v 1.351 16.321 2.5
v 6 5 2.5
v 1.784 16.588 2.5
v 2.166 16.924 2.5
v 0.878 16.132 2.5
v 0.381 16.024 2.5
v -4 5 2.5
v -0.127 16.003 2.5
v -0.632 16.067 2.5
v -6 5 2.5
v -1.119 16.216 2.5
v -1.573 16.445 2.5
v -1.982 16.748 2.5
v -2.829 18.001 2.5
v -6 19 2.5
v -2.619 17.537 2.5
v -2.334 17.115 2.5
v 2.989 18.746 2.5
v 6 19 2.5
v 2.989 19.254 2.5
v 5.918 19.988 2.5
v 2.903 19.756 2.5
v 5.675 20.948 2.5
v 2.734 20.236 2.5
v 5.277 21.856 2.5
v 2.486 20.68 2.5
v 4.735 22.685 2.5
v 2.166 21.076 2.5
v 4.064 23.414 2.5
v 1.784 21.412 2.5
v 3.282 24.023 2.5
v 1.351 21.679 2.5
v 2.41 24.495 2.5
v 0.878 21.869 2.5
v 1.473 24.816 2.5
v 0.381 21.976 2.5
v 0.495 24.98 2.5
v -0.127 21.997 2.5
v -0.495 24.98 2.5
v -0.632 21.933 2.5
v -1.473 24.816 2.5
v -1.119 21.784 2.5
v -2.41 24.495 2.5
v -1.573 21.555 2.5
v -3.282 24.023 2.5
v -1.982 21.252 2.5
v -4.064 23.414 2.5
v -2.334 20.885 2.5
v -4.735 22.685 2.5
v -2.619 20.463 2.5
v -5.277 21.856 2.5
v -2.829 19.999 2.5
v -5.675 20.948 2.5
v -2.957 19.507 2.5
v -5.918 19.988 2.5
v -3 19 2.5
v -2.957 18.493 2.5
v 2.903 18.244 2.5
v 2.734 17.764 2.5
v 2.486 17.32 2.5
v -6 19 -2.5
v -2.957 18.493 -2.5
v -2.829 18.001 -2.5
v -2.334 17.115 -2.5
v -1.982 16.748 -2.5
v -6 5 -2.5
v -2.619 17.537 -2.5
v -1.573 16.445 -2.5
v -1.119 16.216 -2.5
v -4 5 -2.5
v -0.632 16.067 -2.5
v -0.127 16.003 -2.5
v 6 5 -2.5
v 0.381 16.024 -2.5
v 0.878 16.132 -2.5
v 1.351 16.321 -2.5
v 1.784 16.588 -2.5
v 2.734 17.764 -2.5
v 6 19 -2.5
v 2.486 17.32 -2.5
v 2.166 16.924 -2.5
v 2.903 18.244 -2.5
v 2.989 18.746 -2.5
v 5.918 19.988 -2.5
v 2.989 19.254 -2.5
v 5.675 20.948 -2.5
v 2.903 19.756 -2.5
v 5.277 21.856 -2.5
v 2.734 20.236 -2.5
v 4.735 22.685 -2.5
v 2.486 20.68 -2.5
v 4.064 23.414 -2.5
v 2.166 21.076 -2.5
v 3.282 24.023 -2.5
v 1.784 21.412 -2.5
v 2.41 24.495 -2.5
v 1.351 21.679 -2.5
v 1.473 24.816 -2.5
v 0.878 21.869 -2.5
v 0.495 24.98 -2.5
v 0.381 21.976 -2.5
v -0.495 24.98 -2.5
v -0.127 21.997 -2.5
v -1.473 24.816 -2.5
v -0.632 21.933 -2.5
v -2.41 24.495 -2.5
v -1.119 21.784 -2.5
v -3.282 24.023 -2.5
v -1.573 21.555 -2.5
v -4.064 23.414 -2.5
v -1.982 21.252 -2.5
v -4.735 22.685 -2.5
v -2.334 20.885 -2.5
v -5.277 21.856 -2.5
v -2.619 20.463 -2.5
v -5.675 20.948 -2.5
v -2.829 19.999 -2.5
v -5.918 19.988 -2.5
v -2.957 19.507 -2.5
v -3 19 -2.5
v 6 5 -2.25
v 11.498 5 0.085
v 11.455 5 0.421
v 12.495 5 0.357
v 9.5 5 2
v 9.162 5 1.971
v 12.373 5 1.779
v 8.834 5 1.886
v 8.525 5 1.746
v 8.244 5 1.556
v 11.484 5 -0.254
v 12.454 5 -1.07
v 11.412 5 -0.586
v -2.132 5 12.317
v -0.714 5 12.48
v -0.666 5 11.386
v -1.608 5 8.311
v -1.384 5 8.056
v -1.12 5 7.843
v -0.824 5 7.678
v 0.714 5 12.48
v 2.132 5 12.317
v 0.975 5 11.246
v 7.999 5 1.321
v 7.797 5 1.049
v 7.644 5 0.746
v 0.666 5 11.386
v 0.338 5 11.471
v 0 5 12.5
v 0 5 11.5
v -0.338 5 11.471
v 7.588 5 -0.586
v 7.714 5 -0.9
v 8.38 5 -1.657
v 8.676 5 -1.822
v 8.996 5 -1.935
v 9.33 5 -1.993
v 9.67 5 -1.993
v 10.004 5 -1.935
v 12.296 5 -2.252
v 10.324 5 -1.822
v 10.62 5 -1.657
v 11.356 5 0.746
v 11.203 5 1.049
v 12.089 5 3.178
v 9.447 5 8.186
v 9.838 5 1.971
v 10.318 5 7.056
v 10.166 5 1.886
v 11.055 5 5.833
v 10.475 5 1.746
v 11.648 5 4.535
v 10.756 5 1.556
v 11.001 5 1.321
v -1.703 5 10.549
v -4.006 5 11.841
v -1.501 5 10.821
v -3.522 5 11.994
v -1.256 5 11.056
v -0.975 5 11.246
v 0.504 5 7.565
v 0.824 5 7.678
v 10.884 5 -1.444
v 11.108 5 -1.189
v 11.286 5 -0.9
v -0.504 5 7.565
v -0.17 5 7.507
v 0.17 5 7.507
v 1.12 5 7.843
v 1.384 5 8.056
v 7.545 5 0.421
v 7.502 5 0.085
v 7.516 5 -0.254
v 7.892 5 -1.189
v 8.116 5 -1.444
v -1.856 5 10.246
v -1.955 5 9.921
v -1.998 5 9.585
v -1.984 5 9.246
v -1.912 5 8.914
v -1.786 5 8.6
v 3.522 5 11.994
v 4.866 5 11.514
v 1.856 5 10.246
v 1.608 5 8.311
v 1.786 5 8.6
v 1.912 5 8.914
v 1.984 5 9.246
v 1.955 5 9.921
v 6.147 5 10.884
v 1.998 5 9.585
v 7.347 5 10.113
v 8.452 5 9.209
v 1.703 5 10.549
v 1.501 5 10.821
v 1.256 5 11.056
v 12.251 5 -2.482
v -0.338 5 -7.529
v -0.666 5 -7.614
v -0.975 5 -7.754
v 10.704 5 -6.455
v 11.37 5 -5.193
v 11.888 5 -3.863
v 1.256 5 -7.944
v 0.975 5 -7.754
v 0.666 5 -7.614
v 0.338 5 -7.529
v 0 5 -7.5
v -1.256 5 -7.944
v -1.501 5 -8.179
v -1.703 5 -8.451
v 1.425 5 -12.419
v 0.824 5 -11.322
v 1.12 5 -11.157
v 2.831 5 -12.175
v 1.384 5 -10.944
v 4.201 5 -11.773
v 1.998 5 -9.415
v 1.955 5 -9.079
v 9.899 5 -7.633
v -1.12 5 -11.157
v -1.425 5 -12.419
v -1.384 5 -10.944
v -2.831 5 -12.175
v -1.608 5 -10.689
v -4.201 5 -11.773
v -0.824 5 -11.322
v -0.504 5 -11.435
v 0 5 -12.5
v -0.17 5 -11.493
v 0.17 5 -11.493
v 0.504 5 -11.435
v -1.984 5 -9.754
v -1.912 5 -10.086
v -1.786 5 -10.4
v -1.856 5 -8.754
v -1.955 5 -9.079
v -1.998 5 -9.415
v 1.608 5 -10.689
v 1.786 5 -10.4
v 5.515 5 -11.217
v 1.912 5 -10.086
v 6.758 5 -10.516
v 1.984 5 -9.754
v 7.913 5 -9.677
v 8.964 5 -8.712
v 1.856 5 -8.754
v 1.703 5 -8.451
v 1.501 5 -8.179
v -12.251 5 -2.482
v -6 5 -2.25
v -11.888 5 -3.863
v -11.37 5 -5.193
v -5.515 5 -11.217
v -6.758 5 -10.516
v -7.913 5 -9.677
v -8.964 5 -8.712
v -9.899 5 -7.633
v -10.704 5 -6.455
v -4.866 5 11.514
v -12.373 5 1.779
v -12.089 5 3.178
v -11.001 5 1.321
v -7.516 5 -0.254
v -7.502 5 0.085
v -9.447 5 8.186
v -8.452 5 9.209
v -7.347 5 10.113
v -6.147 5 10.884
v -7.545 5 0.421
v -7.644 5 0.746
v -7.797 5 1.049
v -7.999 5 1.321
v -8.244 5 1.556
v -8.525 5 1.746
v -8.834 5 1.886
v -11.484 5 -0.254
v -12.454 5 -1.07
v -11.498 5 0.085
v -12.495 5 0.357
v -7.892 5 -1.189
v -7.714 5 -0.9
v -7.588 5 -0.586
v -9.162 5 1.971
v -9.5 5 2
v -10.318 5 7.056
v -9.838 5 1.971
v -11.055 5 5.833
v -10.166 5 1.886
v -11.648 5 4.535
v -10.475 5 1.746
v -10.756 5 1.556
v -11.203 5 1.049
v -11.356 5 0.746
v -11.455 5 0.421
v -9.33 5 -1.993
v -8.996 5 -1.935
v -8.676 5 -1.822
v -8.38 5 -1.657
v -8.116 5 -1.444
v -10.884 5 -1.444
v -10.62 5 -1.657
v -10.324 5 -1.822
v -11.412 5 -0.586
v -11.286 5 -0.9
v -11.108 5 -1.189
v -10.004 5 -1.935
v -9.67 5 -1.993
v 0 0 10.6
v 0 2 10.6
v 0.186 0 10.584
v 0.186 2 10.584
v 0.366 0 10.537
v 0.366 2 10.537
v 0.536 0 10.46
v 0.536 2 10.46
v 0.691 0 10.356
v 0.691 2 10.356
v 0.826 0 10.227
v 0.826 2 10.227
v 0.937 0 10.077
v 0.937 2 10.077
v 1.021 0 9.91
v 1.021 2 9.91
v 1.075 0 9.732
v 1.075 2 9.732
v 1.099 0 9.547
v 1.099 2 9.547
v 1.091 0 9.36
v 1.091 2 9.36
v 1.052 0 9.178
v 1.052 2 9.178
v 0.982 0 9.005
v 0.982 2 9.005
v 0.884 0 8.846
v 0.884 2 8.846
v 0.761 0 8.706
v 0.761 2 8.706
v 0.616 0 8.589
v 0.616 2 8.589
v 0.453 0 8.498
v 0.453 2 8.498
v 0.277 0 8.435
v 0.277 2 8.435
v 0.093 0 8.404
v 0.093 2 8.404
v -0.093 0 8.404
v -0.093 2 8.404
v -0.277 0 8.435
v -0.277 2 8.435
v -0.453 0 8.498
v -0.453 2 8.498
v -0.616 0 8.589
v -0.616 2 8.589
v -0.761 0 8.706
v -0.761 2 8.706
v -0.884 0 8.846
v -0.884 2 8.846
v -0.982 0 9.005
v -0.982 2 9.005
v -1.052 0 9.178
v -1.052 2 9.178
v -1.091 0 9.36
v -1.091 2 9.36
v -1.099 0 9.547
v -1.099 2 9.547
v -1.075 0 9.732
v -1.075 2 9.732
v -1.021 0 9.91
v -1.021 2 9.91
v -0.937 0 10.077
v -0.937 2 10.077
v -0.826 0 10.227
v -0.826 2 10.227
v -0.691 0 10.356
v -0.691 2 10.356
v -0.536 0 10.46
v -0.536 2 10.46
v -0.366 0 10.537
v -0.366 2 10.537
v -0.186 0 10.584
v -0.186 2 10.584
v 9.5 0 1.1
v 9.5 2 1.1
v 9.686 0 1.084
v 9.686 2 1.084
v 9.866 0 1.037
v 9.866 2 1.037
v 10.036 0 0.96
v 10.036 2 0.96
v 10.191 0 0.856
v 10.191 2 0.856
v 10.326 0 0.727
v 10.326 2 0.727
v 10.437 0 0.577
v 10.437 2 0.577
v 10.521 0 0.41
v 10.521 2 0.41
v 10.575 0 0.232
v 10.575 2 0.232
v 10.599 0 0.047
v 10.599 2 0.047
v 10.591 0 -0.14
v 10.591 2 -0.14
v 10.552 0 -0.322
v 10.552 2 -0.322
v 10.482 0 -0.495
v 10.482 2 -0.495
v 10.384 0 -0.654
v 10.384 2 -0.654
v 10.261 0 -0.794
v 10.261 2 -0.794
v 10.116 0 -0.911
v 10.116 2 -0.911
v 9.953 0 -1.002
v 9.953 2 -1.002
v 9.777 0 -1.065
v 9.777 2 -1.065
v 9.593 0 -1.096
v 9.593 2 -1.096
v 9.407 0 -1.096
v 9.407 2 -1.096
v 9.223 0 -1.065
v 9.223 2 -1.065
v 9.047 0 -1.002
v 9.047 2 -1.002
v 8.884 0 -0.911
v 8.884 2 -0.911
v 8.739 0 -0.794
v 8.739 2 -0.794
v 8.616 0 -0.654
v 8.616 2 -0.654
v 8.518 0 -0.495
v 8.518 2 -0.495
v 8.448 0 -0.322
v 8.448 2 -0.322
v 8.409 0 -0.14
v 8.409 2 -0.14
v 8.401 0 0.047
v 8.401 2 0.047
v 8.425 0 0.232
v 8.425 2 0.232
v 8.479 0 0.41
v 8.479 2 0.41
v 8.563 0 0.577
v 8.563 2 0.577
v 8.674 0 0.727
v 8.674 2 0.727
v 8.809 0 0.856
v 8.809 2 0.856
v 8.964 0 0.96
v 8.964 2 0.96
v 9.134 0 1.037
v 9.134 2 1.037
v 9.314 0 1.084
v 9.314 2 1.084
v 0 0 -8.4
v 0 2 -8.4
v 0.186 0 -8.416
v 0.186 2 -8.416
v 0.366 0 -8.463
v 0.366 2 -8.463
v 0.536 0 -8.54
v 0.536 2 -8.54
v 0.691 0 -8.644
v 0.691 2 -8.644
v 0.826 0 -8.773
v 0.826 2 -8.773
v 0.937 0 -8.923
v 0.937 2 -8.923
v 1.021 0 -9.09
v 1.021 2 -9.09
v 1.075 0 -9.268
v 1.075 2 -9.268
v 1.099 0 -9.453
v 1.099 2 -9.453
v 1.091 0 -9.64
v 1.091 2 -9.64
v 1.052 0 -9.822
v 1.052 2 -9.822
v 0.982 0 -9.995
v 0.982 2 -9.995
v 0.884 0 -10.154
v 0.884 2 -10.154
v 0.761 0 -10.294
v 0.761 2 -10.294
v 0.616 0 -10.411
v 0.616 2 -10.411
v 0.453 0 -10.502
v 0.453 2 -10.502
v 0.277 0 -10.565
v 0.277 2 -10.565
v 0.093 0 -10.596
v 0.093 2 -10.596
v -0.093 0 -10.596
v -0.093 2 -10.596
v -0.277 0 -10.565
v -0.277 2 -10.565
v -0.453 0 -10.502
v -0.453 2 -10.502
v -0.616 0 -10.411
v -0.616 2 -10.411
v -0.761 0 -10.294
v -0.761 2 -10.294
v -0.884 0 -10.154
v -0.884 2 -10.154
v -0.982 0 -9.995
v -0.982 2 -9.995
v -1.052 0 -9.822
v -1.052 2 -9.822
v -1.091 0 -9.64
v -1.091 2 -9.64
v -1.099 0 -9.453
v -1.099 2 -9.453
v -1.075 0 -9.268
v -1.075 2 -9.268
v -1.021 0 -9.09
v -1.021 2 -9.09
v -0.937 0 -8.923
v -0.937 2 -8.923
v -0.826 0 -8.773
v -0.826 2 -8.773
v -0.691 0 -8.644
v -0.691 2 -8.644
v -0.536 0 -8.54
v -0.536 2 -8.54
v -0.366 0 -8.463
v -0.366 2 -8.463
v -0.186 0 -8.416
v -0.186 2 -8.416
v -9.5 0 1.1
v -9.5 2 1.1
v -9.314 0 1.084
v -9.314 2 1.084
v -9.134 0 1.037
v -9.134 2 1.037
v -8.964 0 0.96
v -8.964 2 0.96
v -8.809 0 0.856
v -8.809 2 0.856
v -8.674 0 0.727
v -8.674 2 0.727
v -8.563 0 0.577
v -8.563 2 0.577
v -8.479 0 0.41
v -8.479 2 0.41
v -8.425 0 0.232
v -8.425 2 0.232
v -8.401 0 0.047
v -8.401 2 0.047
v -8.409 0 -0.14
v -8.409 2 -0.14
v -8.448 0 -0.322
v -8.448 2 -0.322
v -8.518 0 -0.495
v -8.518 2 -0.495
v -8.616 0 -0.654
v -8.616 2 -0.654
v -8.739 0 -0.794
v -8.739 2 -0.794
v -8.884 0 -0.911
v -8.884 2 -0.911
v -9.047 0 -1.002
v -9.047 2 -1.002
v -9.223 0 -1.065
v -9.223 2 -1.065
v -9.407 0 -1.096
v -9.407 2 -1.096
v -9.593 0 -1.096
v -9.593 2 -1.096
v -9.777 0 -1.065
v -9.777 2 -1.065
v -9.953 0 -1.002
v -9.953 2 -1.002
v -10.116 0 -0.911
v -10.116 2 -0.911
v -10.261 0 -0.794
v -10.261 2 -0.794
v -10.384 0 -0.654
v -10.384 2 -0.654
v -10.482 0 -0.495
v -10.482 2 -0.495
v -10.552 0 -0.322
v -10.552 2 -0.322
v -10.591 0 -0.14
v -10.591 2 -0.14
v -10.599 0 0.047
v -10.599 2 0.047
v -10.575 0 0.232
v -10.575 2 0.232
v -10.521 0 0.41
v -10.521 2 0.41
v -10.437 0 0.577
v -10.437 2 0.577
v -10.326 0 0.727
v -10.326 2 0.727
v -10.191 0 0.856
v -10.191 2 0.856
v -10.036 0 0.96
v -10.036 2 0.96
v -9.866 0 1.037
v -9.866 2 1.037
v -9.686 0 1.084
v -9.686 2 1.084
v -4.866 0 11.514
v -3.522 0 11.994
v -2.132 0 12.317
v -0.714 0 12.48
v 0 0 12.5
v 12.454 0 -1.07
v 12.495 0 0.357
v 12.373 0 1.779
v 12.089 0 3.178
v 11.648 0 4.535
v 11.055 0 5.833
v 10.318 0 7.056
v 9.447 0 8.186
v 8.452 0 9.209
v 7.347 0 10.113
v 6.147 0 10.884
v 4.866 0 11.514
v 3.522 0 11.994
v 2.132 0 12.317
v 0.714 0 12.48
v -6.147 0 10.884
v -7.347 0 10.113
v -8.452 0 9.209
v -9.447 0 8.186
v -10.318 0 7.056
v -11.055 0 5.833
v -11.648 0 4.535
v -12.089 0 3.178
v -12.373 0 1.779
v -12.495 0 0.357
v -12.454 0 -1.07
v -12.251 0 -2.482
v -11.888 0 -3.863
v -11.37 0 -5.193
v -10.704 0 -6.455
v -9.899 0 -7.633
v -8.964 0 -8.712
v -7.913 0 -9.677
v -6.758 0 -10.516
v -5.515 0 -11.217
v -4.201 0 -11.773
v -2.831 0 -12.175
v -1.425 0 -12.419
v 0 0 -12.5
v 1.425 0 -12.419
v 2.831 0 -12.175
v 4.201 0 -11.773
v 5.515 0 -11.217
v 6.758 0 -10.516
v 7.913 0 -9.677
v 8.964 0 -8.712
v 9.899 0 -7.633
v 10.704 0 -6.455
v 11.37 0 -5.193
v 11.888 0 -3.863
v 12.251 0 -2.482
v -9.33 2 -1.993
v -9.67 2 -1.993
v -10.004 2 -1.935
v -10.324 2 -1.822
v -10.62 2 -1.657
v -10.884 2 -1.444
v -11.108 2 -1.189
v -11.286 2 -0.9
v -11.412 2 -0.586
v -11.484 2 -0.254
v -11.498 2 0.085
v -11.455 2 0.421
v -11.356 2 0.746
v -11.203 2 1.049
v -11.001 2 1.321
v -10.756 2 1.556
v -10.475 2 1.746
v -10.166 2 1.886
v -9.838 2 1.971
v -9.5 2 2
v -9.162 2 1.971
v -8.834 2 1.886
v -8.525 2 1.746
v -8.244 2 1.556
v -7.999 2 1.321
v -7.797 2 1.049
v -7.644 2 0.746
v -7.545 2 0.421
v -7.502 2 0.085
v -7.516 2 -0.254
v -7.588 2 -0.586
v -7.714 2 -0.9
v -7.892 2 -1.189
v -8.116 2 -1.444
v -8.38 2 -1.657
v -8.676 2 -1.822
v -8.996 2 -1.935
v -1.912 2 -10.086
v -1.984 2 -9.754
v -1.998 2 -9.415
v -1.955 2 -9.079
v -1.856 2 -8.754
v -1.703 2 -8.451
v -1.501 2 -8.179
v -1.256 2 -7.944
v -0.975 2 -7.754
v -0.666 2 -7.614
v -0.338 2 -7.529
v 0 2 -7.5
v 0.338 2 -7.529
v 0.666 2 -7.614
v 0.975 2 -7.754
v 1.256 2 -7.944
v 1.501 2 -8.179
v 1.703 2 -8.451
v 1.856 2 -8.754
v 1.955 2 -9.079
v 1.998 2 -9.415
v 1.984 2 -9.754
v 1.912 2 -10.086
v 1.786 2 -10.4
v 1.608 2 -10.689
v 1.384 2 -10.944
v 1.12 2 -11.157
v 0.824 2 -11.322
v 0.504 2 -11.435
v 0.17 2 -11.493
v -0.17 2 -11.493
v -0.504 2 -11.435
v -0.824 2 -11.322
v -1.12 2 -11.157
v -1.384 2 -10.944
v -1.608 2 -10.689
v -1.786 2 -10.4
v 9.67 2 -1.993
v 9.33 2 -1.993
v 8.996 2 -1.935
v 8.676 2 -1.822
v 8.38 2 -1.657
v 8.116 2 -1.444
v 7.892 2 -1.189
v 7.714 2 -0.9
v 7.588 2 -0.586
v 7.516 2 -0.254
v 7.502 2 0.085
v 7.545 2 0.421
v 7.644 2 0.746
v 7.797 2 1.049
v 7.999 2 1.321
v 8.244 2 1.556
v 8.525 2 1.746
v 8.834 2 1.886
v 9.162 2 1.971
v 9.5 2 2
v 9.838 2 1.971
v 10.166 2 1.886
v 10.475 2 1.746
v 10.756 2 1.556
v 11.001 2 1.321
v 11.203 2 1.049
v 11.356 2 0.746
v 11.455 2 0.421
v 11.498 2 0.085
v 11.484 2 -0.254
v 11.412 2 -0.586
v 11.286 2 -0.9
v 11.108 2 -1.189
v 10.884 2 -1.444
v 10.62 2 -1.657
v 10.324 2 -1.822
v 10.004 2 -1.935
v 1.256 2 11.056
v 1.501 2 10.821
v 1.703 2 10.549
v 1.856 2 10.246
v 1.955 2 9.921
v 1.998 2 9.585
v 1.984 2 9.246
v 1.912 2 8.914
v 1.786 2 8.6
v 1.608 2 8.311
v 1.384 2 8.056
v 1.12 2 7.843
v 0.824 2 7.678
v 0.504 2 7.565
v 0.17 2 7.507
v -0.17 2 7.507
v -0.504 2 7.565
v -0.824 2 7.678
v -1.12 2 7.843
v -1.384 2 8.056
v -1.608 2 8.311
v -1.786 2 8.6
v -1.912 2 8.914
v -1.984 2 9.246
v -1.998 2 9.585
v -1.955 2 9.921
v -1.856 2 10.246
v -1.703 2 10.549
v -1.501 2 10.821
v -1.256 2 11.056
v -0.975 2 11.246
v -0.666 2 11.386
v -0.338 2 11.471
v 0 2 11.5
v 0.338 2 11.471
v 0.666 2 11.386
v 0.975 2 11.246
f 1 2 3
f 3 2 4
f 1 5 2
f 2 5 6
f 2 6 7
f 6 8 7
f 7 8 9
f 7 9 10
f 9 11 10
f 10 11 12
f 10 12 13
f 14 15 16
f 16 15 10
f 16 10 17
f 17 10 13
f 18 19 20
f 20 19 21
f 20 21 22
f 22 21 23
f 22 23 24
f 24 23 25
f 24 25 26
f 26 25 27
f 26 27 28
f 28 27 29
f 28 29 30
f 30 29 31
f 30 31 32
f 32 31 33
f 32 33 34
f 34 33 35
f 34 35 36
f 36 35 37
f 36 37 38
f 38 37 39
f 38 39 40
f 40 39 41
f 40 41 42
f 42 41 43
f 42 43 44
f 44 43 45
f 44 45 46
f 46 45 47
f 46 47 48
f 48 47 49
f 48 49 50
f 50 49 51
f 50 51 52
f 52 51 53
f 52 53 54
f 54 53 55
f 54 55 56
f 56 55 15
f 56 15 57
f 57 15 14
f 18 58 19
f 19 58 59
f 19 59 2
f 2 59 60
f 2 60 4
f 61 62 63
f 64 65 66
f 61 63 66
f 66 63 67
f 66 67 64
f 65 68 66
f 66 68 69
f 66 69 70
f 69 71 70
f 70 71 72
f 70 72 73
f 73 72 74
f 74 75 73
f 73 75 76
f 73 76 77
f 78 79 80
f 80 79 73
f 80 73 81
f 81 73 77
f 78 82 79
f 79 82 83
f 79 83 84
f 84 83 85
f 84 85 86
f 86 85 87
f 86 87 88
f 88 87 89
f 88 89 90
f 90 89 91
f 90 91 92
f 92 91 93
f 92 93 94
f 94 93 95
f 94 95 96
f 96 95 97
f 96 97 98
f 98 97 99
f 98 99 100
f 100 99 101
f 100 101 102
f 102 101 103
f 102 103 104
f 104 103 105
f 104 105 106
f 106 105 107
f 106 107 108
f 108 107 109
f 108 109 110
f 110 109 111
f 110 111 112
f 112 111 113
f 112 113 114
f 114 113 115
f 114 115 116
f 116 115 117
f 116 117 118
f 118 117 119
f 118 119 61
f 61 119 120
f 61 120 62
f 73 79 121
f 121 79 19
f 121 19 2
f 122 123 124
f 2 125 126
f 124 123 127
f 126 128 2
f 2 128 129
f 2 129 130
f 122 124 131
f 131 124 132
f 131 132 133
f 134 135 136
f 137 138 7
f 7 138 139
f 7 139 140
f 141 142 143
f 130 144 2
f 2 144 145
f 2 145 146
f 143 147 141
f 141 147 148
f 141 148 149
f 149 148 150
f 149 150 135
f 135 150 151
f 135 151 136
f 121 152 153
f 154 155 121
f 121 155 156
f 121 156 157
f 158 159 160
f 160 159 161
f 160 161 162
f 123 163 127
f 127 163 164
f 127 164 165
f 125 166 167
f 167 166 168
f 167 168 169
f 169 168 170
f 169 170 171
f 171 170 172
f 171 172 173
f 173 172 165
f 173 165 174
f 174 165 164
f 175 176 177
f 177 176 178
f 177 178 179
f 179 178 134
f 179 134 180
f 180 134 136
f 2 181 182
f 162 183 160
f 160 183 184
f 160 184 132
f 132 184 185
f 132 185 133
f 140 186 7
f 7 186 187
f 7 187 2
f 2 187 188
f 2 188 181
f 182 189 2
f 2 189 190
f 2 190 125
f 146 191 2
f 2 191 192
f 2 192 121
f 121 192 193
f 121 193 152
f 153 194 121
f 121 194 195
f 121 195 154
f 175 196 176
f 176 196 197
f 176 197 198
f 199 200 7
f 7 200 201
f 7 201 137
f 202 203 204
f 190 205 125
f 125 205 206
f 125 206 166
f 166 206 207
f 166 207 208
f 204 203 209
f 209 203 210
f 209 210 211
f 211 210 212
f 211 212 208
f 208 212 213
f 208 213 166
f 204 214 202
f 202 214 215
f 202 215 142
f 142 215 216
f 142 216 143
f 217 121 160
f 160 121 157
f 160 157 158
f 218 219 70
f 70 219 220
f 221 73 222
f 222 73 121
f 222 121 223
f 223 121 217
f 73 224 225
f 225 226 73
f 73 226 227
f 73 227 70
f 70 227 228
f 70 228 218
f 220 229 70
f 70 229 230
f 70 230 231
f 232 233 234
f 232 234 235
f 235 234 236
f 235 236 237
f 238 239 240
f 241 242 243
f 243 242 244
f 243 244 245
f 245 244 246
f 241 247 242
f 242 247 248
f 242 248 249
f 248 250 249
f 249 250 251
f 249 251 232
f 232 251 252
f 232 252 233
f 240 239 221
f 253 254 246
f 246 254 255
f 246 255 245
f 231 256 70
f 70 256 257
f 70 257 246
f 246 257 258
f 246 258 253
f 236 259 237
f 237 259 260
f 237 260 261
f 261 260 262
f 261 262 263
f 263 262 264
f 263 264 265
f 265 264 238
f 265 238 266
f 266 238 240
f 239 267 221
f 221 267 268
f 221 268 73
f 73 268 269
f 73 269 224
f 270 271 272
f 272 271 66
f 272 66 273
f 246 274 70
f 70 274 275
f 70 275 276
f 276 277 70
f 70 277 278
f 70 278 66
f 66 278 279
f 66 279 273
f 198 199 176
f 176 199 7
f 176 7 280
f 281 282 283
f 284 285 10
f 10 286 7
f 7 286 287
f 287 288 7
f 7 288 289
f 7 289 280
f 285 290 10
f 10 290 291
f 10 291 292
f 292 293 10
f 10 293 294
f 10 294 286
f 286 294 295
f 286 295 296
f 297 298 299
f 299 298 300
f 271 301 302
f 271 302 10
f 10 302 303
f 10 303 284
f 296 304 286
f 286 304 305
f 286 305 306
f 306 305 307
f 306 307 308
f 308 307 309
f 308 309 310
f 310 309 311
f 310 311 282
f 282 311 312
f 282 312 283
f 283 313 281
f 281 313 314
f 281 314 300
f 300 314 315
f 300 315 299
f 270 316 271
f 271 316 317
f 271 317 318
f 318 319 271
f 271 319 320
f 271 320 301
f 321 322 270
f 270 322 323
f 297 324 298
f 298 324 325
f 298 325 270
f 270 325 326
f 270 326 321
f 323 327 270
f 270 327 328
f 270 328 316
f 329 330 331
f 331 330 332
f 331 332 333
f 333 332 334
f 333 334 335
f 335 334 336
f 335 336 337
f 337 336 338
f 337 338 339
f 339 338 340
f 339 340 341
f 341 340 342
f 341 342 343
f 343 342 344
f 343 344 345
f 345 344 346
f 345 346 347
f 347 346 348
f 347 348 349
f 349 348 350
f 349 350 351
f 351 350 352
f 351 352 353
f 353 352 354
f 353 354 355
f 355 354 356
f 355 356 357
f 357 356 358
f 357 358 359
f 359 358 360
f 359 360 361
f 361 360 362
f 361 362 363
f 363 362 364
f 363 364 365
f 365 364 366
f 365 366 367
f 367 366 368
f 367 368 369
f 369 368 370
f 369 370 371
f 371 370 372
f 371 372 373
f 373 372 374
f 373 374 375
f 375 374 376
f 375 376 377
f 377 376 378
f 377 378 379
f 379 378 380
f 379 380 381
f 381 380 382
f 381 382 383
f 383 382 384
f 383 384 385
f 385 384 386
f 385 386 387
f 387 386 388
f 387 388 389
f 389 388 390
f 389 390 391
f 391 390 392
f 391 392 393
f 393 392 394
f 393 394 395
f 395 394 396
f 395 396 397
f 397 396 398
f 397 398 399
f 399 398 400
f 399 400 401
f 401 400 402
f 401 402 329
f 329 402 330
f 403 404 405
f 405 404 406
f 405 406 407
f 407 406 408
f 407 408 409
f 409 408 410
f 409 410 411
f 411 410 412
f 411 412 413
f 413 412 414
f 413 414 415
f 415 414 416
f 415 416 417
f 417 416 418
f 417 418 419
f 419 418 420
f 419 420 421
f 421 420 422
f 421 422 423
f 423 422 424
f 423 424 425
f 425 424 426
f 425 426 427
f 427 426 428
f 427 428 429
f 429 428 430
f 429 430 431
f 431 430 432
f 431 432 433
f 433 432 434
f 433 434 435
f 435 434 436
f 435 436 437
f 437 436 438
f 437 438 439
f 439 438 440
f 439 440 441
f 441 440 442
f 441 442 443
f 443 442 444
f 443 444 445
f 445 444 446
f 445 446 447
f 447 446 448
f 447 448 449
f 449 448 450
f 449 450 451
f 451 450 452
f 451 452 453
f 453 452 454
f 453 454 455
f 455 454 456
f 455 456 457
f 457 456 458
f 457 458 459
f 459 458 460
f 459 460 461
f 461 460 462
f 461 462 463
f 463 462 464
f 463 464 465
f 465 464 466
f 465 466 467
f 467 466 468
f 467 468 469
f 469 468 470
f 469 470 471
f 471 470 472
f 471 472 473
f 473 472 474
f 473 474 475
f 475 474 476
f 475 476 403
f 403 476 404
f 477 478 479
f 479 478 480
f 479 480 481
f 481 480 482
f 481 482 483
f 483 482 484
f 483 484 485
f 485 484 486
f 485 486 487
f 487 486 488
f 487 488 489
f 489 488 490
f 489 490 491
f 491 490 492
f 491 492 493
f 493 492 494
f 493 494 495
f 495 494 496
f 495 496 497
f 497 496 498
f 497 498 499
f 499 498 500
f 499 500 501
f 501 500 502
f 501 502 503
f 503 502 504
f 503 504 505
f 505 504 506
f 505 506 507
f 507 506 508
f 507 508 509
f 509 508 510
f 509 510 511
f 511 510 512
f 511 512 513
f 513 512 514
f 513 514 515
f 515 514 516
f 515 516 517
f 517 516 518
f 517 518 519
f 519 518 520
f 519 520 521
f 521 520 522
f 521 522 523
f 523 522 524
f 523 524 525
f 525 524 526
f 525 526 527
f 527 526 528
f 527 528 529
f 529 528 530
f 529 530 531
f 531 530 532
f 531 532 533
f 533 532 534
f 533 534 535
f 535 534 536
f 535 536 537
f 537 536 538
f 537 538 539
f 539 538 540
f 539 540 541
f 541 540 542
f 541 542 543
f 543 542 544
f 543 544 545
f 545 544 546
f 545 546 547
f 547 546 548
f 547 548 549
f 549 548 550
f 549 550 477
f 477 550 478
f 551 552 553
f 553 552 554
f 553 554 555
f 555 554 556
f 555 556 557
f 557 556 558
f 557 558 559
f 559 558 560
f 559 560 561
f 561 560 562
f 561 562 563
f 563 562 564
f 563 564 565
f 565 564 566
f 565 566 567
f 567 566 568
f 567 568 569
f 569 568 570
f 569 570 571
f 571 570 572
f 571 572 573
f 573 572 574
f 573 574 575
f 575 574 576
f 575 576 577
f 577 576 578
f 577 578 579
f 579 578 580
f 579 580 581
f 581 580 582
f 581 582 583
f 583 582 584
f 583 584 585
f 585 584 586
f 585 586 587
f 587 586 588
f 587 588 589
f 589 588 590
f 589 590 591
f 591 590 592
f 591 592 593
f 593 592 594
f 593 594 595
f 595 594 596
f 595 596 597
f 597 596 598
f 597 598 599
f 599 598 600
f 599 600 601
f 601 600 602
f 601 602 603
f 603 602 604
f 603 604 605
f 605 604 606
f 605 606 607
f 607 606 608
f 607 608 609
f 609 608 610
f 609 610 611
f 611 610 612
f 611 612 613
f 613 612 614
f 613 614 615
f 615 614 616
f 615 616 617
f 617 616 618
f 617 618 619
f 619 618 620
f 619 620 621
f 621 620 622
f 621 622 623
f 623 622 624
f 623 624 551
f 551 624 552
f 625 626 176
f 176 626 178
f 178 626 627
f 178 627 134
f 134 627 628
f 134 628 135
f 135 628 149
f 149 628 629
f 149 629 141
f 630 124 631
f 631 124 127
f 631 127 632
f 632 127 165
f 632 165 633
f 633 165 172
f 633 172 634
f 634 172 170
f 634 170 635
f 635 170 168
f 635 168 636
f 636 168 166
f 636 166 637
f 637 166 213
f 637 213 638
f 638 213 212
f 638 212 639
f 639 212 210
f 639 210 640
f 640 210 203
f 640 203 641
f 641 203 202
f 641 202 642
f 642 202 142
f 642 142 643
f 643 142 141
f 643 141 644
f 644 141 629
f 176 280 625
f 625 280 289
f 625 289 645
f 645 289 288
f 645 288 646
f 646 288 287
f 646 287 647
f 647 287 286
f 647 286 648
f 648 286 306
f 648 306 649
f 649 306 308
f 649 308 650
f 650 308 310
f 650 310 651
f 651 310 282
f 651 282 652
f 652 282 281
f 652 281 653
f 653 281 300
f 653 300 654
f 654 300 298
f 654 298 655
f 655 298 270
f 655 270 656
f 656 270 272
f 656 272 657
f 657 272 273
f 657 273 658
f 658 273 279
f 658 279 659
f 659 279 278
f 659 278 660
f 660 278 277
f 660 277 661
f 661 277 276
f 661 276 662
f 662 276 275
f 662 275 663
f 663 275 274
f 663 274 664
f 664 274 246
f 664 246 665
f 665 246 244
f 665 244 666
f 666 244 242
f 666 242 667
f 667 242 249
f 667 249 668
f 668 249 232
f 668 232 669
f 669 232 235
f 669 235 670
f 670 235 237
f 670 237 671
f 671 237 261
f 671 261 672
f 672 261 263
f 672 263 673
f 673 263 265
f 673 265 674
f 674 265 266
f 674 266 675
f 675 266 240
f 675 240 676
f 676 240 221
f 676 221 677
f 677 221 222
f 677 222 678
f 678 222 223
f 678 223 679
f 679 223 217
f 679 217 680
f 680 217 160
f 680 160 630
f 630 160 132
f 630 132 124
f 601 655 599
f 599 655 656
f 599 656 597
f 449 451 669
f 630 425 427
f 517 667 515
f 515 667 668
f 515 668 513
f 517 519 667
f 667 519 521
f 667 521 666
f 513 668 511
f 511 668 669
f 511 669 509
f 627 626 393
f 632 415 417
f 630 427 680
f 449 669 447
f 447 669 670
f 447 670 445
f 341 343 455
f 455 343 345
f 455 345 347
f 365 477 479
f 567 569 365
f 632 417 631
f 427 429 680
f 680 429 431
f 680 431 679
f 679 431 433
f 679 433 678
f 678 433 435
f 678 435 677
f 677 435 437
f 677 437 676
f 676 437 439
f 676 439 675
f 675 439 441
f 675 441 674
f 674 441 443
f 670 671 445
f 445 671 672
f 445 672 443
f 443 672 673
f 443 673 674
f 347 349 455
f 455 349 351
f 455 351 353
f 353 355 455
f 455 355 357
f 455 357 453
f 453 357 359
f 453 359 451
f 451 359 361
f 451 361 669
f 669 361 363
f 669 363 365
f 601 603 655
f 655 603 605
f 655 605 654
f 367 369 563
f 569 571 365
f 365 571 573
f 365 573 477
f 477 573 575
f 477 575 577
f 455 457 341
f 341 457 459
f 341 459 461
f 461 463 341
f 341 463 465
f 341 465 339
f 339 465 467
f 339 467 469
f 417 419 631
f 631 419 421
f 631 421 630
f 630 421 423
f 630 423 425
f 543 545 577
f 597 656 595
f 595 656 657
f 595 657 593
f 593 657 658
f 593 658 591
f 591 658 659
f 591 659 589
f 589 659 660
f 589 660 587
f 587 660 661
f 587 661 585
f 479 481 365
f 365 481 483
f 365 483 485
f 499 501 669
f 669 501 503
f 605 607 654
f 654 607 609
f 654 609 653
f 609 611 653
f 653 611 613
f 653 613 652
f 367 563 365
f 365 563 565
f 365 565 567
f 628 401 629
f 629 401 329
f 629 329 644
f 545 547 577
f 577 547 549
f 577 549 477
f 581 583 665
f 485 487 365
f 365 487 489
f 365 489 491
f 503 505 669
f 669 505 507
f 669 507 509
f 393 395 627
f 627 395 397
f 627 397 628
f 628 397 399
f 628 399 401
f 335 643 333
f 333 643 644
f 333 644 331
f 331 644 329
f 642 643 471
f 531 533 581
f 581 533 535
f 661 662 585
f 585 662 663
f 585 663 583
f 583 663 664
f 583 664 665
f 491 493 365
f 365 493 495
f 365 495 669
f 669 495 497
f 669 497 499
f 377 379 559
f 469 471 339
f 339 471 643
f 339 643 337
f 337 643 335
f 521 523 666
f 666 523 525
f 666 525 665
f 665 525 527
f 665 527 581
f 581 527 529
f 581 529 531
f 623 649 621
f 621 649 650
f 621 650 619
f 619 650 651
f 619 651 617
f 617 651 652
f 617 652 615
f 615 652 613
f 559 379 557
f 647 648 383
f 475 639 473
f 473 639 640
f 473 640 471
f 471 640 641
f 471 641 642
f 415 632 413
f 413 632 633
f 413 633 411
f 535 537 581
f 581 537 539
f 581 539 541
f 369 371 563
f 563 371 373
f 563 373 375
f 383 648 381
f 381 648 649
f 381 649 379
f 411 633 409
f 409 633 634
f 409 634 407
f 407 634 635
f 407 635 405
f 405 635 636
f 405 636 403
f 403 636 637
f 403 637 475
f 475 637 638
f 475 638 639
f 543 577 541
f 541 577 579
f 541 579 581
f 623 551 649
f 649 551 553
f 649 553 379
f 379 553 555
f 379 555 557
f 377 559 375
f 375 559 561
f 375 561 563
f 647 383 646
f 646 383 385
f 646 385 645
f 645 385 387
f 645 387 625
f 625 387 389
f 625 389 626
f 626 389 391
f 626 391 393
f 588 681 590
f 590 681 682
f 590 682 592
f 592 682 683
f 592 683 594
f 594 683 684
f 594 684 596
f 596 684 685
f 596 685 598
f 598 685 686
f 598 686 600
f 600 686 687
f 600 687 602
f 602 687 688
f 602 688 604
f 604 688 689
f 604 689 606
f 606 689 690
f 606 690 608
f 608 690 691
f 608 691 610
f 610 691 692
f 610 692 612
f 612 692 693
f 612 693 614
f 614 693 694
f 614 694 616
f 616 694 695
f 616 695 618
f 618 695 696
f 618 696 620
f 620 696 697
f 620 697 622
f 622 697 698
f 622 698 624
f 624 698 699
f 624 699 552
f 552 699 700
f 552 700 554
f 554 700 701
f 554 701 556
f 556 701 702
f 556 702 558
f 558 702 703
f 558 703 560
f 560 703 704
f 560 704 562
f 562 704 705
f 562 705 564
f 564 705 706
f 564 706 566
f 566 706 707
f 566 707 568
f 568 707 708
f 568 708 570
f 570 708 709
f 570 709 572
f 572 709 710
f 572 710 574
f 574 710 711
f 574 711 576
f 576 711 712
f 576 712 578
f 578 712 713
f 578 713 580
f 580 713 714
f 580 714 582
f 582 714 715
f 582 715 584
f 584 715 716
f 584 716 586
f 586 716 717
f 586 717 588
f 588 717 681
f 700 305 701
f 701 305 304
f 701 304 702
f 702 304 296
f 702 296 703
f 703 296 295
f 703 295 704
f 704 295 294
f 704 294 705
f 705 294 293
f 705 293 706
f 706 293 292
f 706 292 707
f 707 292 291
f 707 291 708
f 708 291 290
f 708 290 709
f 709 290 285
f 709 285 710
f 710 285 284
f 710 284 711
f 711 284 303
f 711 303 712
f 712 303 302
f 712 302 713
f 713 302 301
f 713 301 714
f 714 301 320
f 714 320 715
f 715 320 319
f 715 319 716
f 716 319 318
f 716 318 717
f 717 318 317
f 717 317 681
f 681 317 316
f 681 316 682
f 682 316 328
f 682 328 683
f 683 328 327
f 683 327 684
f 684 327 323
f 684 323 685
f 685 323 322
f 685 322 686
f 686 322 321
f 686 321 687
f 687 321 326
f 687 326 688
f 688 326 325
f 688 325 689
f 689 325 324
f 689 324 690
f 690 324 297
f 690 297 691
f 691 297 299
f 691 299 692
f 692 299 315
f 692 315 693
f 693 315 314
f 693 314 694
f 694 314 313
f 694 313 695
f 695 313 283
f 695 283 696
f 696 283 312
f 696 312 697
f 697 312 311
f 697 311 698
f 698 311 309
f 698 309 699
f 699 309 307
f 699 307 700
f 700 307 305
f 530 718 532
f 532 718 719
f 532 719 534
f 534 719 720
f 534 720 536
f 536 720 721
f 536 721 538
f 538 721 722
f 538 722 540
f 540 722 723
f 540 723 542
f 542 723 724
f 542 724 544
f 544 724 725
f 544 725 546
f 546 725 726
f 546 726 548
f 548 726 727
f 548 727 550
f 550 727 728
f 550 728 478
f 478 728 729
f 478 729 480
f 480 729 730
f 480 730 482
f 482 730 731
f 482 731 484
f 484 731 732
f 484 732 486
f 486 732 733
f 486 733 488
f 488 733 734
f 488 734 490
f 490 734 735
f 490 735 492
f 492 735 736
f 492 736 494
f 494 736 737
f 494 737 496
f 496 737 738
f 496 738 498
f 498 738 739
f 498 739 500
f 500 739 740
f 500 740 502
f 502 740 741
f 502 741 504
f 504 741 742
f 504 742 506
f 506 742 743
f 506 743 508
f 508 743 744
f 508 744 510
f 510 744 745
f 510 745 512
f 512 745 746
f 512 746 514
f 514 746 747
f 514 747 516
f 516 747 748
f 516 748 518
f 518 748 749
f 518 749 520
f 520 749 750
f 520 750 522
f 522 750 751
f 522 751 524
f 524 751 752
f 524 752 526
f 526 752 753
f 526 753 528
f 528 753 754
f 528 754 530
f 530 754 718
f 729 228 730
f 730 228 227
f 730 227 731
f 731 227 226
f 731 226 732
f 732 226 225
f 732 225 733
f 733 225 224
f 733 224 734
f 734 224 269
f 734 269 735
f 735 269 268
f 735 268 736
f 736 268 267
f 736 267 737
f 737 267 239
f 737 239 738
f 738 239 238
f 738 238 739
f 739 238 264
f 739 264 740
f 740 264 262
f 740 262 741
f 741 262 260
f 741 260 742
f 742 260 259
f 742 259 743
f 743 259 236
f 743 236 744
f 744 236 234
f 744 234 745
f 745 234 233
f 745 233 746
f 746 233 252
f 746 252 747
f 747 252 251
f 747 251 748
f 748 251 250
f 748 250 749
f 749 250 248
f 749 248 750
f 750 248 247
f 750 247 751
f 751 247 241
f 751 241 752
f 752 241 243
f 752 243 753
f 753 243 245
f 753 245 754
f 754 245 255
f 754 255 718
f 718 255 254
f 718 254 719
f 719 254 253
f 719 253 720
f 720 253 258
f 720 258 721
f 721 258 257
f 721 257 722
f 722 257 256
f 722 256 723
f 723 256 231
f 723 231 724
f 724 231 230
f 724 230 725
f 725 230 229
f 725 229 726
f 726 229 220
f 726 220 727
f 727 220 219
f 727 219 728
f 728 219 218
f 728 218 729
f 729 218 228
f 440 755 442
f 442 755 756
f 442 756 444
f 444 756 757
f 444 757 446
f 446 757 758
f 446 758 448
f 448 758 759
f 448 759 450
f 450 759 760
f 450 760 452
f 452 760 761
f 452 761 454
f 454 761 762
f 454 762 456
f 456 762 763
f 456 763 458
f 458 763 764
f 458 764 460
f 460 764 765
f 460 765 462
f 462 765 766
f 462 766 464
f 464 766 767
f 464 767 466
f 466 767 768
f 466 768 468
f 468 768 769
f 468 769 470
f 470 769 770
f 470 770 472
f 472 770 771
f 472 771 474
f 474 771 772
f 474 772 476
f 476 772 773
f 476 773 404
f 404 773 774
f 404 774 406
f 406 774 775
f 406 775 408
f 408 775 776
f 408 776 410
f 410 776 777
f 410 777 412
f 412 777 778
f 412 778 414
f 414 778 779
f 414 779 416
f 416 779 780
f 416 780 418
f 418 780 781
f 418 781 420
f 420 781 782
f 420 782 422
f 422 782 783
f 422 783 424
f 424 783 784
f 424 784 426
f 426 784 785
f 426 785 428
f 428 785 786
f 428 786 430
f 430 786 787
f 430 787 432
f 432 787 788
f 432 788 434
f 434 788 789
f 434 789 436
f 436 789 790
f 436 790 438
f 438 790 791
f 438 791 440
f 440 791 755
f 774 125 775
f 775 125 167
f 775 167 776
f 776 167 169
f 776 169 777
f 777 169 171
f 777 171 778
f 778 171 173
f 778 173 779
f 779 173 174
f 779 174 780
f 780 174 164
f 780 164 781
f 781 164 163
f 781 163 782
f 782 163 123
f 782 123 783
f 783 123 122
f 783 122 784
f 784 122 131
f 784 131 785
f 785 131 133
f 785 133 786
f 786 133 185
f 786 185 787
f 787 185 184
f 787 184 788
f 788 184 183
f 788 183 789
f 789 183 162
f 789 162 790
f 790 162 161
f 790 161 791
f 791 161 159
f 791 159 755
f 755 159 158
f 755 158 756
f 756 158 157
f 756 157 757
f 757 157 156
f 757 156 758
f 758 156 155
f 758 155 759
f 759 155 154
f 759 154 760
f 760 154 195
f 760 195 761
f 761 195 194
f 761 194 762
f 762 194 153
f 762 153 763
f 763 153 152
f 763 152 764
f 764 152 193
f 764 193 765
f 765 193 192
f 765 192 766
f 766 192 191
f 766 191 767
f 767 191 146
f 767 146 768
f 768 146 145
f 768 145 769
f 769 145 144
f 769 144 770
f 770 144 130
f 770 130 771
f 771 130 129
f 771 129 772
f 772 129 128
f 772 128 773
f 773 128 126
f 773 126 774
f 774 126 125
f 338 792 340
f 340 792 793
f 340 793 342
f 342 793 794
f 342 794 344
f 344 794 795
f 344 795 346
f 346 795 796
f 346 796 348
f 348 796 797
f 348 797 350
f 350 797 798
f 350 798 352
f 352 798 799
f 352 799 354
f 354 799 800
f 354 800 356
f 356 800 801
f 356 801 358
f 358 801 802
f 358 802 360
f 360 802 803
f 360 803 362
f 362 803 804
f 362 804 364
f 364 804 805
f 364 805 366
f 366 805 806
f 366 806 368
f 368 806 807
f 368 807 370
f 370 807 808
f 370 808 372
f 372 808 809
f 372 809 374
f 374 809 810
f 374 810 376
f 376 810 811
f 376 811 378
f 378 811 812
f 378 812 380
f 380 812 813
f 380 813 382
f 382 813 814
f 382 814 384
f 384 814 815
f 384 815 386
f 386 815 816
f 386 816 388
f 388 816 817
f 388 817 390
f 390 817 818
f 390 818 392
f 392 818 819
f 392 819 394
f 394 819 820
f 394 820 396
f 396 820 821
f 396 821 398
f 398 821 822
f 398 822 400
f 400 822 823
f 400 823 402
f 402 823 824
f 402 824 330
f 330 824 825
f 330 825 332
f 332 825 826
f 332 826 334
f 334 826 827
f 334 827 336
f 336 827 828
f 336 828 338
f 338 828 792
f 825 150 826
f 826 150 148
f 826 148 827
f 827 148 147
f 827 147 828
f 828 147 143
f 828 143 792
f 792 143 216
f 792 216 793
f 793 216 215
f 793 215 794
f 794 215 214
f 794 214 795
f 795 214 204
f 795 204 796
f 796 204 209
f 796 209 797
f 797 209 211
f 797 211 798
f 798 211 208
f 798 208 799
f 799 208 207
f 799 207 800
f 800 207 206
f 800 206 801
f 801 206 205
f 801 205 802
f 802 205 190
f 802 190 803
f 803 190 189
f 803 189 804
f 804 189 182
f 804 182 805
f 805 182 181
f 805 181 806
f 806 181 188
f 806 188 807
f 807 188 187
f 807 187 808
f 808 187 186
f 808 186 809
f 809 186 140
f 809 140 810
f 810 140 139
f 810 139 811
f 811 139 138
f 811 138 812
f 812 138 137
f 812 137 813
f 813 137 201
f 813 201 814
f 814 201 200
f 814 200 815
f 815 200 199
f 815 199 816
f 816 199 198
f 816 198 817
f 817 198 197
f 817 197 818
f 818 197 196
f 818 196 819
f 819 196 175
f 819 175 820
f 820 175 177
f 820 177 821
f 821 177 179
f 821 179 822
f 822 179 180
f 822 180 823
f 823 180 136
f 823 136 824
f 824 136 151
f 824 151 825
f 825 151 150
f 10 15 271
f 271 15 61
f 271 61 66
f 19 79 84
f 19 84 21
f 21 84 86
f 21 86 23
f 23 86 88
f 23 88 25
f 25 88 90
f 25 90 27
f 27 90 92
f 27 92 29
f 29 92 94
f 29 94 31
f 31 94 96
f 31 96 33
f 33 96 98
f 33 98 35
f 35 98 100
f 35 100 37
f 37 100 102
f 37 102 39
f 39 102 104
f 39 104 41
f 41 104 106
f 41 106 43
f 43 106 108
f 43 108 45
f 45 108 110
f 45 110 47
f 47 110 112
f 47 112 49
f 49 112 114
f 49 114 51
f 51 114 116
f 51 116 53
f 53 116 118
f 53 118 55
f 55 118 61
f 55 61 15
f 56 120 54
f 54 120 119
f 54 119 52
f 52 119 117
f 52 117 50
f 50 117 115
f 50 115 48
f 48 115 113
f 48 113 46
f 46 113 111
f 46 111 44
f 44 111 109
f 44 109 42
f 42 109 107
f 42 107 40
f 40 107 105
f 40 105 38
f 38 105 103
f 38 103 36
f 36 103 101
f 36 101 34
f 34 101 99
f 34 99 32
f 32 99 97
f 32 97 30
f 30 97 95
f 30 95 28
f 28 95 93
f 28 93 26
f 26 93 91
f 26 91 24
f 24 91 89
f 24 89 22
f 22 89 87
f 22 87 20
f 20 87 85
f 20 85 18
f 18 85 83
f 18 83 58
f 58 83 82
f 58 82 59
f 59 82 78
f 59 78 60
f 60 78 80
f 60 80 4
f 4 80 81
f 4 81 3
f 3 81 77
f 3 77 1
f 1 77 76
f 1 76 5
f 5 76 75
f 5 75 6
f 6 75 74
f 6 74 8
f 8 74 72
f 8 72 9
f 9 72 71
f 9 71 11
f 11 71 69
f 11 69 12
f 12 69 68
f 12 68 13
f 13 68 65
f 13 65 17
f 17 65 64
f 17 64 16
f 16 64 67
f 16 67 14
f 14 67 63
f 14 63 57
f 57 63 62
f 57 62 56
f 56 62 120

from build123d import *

# Parameters (mm, degrees)
SKETCH_1_R          = 12.5
EXTRUDE_1_DEPTH     = 5
SKETCH_2_R          = 1.1
CUT_EXTRUDE_1_DEPTH = 19.371173071
SKETCH_2_3_R        = 2
CUT_EXTRUDE_2_DEPTH = 3
SKETCH_3_W          = 12
SKETCH_3_H          = 5
EXTRUDE_2_DEPTH     = 20
SKETCH_4_R          = 3
CUT_EXTRUDE_3_DEPTH = 32.721443851


with BuildPart() as part:
    # 草图1 → 凸台-拉伸1 (new body)
    with BuildSketch(Plane(origin=(0, 0, 0), x_dir=(1, 0, 0), z_dir=(0, 1, 0))):
        with Locations(Location((0, 0, 0), (0, 0, 270))):
            Circle(SKETCH_1_R)
    extrude(amount=EXTRUDE_1_DEPTH)

    # 草图2 → 切除-拉伸1 (cut, through all)
    with BuildSketch(Plane(origin=(0, 5, 0), x_dir=(1, 0, 0), z_dir=(0, 1, 0))):
        with Locations(Location((0, -9.5, 0), (0, 0, 270))):
            Circle(SKETCH_2_R)
        with Locations(Location((0, 9.5, 0), (0, 0, 270))):
            Circle(SKETCH_2_R)
        with Locations(Location((9.5, 0, 0), (0, 0, 270))):
            Circle(SKETCH_2_R)
        with Locations(Location((-9.5, 0, 0), (0, 0, 270))):
            Circle(SKETCH_2_R)
    extrude(amount=-CUT_EXTRUDE_1_DEPTH, mode=Mode.SUBTRACT)

    # 草图2<3> → 切除-拉伸2 (cut)
    with BuildSketch(Plane(origin=(0, 5, 0), x_dir=(1, 0, 0), z_dir=(0, 1, 0))):
        with Locations(Location((-9.5, 0, 0), (0, 0, 270))):
            Circle(SKETCH_2_3_R)
        with Locations(Location((0, 9.5, 0), (0, 0, 270))):
            Circle(SKETCH_2_3_R)
        with Locations(Location((9.5, 0, 0), (0, 0, 270))):
            Circle(SKETCH_2_3_R)
        with Locations(Location((0, -9.5, 0), (0, 0, 270))):
            Circle(SKETCH_2_3_R)
    extrude(amount=-CUT_EXTRUDE_2_DEPTH, mode=Mode.SUBTRACT)

    # 草图3 → 凸台-拉伸2 (add)
    with BuildSketch(Plane(origin=(0, 5, 0), x_dir=(1, 0, 0), z_dir=(0, 1, 0))):
        Rectangle(SKETCH_3_W, SKETCH_3_H)
    extrude(amount=EXTRUDE_2_DEPTH)

    # 草图4 → 切除-拉伸3 (cut, through all)
    with BuildSketch(Plane(origin=(0, 0, -2.5), x_dir=(-1, 0, 0), z_dir=(0, 0, -1))):
        with BuildLine():
            ThreePointArc((0, 25), (4.242640687, 23.242640687), (6, 19))
            Line((6, 19), (6, 25))
            Line((6, 25), (0, 25))
        make_face()
        with BuildLine():
            ThreePointArc((-6, 19), (-4.242640687, 23.242640687), (0, 25))
            Line((0, 25), (-6, 25))
            Line((-6, 25), (-6, 19))
        make_face()
        with Locations((0, 19)):
            Circle(SKETCH_4_R)
    extrude(amount=-CUT_EXTRUDE_3_DEPTH, mode=Mode.SUBTRACT)


solid = part.part
